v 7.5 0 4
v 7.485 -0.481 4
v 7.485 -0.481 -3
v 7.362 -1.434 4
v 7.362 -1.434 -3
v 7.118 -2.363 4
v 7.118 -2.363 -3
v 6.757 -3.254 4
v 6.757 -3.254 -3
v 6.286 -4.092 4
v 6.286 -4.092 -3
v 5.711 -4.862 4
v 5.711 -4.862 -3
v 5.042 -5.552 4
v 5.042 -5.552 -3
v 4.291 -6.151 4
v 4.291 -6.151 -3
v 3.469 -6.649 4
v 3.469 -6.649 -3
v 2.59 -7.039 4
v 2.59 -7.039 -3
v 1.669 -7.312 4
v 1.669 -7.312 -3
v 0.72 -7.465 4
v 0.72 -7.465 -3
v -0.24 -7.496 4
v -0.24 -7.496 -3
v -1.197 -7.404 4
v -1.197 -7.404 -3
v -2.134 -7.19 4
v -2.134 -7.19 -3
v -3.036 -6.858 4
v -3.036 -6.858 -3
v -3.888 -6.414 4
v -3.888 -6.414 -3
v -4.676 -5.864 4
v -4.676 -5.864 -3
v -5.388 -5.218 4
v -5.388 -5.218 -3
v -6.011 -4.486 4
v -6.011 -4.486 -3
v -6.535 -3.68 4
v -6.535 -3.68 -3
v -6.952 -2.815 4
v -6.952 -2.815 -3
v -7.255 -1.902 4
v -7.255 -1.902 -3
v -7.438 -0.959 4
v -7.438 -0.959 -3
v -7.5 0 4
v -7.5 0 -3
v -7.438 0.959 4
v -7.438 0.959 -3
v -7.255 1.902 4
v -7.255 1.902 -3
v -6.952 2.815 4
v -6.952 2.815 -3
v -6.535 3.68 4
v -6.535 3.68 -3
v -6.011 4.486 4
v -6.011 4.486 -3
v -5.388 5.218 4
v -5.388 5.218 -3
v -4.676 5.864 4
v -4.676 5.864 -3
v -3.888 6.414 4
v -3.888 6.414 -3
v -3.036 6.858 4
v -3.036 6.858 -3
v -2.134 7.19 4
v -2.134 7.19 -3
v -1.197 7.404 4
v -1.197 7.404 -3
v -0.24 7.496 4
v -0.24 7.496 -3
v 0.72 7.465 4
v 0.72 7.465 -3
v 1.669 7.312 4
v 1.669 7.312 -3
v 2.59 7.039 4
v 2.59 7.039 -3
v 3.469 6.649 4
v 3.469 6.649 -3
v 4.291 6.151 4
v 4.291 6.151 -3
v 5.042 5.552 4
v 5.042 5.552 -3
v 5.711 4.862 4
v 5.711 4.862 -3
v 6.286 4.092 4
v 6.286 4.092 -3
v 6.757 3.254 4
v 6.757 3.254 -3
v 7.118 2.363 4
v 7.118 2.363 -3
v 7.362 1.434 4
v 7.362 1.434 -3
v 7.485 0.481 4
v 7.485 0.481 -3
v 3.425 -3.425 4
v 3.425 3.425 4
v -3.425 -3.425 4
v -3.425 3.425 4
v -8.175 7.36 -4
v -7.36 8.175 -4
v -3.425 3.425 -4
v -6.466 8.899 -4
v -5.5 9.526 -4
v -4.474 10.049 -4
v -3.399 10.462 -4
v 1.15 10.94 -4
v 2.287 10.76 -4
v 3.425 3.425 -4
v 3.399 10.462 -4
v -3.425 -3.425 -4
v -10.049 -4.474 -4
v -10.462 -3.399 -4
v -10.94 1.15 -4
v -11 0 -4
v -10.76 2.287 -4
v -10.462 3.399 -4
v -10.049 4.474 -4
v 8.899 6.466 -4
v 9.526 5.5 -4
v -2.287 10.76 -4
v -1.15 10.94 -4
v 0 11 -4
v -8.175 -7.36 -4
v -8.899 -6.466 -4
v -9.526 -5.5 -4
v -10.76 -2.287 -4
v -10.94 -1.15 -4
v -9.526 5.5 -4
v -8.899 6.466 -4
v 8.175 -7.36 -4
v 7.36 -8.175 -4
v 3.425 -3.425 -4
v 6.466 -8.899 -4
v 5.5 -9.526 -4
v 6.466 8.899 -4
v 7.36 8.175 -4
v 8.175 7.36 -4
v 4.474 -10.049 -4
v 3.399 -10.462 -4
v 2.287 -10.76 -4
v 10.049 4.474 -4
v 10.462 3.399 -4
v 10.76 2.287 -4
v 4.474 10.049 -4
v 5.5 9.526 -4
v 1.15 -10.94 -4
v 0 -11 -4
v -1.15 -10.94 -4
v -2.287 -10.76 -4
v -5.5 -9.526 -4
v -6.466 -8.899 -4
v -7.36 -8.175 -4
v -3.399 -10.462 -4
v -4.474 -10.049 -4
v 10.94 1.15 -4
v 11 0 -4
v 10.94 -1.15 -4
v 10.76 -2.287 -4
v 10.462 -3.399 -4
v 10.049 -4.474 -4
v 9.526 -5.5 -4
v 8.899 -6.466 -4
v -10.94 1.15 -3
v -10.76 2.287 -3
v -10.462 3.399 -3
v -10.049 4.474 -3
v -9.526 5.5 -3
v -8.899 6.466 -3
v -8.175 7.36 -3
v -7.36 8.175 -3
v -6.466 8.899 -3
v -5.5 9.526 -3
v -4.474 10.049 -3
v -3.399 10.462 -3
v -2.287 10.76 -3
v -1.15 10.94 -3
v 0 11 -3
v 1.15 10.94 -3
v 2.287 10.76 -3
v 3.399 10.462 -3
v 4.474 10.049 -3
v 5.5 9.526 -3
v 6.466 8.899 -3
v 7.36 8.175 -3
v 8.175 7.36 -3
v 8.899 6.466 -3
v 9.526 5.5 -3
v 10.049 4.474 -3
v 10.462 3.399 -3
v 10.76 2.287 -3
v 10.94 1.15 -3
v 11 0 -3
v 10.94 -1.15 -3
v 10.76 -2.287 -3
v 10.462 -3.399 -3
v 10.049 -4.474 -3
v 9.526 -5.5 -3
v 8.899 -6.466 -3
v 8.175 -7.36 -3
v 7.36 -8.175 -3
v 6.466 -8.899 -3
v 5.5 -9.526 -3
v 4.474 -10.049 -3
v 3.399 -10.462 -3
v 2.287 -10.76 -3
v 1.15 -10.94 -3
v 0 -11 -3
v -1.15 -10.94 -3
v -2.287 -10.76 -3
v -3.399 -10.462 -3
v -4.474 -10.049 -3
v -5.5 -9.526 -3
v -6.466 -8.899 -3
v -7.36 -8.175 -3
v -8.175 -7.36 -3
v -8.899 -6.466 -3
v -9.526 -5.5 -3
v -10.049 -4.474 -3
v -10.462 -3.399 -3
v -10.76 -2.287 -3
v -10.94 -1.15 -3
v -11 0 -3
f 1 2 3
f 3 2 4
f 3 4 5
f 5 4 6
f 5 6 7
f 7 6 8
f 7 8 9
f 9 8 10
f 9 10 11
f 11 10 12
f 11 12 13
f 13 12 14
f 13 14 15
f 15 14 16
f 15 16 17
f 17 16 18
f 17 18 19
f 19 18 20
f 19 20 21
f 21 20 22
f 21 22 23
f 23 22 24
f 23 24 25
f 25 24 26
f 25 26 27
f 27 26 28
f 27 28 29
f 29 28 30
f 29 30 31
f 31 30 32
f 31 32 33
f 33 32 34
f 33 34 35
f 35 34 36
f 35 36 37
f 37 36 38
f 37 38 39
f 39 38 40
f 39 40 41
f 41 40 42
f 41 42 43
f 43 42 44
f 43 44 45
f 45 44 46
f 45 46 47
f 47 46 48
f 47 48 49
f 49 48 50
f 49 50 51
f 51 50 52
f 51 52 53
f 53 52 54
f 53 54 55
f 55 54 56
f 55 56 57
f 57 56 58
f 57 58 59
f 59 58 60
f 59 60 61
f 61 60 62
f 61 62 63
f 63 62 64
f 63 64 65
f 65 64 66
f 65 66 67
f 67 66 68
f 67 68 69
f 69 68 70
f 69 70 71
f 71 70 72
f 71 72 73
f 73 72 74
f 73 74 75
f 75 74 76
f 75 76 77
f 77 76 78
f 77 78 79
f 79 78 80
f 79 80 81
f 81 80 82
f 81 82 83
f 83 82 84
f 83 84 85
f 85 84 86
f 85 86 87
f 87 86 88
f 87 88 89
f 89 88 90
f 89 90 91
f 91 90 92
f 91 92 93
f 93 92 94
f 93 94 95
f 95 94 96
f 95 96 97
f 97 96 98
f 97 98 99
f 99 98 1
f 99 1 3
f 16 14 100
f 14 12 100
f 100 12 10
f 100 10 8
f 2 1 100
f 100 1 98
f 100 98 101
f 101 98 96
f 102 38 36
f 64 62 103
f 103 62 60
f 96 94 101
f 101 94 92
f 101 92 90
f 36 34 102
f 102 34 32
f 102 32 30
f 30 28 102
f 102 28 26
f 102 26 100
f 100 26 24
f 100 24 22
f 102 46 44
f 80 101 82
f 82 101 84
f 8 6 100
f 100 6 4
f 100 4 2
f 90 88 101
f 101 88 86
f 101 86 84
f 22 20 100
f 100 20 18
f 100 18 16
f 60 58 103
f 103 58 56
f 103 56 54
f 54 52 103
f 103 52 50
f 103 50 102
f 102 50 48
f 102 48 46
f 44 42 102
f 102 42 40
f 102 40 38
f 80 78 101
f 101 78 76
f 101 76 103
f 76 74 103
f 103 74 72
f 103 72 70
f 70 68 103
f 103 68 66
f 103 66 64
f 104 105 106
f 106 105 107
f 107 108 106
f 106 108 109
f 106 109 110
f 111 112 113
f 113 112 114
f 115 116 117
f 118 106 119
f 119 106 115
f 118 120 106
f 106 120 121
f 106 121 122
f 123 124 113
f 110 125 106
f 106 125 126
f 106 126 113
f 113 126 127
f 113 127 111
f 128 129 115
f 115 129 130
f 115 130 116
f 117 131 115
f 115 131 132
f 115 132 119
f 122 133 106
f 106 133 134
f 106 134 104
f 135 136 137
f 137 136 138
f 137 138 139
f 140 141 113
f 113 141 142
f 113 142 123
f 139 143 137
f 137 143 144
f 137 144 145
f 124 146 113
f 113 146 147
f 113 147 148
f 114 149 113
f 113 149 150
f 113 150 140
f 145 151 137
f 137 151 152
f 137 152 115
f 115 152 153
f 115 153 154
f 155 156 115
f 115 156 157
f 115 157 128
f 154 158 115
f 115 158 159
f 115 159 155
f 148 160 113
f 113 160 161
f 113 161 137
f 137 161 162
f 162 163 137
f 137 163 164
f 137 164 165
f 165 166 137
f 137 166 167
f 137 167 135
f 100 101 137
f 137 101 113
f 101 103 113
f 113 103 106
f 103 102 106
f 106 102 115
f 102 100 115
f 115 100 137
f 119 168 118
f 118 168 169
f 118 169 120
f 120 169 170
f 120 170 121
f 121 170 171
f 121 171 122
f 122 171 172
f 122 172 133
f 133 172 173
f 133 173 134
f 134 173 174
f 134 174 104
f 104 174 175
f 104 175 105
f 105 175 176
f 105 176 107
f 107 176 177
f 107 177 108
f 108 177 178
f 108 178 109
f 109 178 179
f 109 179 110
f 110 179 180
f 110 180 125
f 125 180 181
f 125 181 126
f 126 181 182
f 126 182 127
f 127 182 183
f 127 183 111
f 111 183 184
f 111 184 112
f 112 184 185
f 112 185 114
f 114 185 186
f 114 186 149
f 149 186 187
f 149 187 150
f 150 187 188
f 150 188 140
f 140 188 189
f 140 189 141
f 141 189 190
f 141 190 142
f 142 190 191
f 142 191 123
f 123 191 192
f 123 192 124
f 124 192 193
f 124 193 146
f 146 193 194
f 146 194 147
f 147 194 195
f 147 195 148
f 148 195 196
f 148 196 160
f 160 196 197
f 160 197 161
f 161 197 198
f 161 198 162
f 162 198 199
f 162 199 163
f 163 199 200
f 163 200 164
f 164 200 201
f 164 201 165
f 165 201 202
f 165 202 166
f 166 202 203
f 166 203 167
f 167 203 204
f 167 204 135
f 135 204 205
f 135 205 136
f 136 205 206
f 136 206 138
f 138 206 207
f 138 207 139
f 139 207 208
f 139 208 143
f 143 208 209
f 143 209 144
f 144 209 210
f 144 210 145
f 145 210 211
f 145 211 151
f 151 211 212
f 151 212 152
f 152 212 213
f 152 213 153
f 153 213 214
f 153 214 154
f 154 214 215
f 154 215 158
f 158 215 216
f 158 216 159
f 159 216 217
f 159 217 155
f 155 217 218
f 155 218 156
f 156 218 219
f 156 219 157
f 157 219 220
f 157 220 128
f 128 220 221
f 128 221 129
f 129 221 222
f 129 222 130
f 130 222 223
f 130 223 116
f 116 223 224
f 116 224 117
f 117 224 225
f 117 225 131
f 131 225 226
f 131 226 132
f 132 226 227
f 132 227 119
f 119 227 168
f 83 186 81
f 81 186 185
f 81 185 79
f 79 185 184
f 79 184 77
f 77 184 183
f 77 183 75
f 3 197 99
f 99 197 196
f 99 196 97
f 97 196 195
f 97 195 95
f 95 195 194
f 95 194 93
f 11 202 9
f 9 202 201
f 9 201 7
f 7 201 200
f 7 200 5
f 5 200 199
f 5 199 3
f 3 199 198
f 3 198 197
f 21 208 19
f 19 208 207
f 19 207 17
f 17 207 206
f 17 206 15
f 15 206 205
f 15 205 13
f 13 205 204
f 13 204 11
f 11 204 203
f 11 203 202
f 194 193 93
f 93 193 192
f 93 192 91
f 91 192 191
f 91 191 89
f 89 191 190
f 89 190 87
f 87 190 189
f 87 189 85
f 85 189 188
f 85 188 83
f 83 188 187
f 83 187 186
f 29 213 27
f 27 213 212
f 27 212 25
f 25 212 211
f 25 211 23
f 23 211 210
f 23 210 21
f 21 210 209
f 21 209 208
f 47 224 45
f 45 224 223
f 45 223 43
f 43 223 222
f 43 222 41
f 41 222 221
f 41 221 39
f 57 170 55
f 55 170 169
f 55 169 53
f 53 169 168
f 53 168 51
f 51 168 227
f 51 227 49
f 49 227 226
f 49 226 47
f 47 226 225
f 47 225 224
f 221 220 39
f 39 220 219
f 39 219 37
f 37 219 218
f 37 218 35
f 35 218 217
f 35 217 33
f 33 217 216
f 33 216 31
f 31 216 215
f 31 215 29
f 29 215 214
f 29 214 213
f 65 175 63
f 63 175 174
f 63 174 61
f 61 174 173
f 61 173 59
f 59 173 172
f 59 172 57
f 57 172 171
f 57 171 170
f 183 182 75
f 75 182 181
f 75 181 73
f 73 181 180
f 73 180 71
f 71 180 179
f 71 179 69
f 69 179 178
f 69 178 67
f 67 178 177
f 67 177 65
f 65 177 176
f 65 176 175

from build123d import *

# Parameters (mm, degrees)
SKETCH1_R           = 7.5
SKETCH1_W           = 6.85
SKETCH1_H           = 6.85
BOSS_EXTRUDE1_DEPTH = 4
BOSS_EXTRUDE2_START = -1
SKETCH2_R           = 11
SKETCH2_R_2         = 7.5
BOSS_EXTRUDE2_DEPTH = 1


with BuildPart() as part:
    # Sketch1 → Boss-Extrude1 (new, symmetric)
    with BuildSketch(Plane.XY):
        Circle(SKETCH1_R)
        Rectangle(SKETCH1_W, SKETCH1_H, mode=Mode.SUBTRACT)
    extrude(amount=BOSS_EXTRUDE1_DEPTH, both=True)

    # Sketch2 → Boss-Extrude2 (add)
    with BuildSketch(Plane(origin=(0, 0, -4), x_dir=(-1, 0, 0), z_dir=(0, 0, -1)).offset(BOSS_EXTRUDE2_START)):
        Circle(SKETCH2_R)
        Circle(SKETCH2_R_2, mode=Mode.SUBTRACT)
    extrude(amount=BOSS_EXTRUDE2_DEPTH)


solid = part.part
